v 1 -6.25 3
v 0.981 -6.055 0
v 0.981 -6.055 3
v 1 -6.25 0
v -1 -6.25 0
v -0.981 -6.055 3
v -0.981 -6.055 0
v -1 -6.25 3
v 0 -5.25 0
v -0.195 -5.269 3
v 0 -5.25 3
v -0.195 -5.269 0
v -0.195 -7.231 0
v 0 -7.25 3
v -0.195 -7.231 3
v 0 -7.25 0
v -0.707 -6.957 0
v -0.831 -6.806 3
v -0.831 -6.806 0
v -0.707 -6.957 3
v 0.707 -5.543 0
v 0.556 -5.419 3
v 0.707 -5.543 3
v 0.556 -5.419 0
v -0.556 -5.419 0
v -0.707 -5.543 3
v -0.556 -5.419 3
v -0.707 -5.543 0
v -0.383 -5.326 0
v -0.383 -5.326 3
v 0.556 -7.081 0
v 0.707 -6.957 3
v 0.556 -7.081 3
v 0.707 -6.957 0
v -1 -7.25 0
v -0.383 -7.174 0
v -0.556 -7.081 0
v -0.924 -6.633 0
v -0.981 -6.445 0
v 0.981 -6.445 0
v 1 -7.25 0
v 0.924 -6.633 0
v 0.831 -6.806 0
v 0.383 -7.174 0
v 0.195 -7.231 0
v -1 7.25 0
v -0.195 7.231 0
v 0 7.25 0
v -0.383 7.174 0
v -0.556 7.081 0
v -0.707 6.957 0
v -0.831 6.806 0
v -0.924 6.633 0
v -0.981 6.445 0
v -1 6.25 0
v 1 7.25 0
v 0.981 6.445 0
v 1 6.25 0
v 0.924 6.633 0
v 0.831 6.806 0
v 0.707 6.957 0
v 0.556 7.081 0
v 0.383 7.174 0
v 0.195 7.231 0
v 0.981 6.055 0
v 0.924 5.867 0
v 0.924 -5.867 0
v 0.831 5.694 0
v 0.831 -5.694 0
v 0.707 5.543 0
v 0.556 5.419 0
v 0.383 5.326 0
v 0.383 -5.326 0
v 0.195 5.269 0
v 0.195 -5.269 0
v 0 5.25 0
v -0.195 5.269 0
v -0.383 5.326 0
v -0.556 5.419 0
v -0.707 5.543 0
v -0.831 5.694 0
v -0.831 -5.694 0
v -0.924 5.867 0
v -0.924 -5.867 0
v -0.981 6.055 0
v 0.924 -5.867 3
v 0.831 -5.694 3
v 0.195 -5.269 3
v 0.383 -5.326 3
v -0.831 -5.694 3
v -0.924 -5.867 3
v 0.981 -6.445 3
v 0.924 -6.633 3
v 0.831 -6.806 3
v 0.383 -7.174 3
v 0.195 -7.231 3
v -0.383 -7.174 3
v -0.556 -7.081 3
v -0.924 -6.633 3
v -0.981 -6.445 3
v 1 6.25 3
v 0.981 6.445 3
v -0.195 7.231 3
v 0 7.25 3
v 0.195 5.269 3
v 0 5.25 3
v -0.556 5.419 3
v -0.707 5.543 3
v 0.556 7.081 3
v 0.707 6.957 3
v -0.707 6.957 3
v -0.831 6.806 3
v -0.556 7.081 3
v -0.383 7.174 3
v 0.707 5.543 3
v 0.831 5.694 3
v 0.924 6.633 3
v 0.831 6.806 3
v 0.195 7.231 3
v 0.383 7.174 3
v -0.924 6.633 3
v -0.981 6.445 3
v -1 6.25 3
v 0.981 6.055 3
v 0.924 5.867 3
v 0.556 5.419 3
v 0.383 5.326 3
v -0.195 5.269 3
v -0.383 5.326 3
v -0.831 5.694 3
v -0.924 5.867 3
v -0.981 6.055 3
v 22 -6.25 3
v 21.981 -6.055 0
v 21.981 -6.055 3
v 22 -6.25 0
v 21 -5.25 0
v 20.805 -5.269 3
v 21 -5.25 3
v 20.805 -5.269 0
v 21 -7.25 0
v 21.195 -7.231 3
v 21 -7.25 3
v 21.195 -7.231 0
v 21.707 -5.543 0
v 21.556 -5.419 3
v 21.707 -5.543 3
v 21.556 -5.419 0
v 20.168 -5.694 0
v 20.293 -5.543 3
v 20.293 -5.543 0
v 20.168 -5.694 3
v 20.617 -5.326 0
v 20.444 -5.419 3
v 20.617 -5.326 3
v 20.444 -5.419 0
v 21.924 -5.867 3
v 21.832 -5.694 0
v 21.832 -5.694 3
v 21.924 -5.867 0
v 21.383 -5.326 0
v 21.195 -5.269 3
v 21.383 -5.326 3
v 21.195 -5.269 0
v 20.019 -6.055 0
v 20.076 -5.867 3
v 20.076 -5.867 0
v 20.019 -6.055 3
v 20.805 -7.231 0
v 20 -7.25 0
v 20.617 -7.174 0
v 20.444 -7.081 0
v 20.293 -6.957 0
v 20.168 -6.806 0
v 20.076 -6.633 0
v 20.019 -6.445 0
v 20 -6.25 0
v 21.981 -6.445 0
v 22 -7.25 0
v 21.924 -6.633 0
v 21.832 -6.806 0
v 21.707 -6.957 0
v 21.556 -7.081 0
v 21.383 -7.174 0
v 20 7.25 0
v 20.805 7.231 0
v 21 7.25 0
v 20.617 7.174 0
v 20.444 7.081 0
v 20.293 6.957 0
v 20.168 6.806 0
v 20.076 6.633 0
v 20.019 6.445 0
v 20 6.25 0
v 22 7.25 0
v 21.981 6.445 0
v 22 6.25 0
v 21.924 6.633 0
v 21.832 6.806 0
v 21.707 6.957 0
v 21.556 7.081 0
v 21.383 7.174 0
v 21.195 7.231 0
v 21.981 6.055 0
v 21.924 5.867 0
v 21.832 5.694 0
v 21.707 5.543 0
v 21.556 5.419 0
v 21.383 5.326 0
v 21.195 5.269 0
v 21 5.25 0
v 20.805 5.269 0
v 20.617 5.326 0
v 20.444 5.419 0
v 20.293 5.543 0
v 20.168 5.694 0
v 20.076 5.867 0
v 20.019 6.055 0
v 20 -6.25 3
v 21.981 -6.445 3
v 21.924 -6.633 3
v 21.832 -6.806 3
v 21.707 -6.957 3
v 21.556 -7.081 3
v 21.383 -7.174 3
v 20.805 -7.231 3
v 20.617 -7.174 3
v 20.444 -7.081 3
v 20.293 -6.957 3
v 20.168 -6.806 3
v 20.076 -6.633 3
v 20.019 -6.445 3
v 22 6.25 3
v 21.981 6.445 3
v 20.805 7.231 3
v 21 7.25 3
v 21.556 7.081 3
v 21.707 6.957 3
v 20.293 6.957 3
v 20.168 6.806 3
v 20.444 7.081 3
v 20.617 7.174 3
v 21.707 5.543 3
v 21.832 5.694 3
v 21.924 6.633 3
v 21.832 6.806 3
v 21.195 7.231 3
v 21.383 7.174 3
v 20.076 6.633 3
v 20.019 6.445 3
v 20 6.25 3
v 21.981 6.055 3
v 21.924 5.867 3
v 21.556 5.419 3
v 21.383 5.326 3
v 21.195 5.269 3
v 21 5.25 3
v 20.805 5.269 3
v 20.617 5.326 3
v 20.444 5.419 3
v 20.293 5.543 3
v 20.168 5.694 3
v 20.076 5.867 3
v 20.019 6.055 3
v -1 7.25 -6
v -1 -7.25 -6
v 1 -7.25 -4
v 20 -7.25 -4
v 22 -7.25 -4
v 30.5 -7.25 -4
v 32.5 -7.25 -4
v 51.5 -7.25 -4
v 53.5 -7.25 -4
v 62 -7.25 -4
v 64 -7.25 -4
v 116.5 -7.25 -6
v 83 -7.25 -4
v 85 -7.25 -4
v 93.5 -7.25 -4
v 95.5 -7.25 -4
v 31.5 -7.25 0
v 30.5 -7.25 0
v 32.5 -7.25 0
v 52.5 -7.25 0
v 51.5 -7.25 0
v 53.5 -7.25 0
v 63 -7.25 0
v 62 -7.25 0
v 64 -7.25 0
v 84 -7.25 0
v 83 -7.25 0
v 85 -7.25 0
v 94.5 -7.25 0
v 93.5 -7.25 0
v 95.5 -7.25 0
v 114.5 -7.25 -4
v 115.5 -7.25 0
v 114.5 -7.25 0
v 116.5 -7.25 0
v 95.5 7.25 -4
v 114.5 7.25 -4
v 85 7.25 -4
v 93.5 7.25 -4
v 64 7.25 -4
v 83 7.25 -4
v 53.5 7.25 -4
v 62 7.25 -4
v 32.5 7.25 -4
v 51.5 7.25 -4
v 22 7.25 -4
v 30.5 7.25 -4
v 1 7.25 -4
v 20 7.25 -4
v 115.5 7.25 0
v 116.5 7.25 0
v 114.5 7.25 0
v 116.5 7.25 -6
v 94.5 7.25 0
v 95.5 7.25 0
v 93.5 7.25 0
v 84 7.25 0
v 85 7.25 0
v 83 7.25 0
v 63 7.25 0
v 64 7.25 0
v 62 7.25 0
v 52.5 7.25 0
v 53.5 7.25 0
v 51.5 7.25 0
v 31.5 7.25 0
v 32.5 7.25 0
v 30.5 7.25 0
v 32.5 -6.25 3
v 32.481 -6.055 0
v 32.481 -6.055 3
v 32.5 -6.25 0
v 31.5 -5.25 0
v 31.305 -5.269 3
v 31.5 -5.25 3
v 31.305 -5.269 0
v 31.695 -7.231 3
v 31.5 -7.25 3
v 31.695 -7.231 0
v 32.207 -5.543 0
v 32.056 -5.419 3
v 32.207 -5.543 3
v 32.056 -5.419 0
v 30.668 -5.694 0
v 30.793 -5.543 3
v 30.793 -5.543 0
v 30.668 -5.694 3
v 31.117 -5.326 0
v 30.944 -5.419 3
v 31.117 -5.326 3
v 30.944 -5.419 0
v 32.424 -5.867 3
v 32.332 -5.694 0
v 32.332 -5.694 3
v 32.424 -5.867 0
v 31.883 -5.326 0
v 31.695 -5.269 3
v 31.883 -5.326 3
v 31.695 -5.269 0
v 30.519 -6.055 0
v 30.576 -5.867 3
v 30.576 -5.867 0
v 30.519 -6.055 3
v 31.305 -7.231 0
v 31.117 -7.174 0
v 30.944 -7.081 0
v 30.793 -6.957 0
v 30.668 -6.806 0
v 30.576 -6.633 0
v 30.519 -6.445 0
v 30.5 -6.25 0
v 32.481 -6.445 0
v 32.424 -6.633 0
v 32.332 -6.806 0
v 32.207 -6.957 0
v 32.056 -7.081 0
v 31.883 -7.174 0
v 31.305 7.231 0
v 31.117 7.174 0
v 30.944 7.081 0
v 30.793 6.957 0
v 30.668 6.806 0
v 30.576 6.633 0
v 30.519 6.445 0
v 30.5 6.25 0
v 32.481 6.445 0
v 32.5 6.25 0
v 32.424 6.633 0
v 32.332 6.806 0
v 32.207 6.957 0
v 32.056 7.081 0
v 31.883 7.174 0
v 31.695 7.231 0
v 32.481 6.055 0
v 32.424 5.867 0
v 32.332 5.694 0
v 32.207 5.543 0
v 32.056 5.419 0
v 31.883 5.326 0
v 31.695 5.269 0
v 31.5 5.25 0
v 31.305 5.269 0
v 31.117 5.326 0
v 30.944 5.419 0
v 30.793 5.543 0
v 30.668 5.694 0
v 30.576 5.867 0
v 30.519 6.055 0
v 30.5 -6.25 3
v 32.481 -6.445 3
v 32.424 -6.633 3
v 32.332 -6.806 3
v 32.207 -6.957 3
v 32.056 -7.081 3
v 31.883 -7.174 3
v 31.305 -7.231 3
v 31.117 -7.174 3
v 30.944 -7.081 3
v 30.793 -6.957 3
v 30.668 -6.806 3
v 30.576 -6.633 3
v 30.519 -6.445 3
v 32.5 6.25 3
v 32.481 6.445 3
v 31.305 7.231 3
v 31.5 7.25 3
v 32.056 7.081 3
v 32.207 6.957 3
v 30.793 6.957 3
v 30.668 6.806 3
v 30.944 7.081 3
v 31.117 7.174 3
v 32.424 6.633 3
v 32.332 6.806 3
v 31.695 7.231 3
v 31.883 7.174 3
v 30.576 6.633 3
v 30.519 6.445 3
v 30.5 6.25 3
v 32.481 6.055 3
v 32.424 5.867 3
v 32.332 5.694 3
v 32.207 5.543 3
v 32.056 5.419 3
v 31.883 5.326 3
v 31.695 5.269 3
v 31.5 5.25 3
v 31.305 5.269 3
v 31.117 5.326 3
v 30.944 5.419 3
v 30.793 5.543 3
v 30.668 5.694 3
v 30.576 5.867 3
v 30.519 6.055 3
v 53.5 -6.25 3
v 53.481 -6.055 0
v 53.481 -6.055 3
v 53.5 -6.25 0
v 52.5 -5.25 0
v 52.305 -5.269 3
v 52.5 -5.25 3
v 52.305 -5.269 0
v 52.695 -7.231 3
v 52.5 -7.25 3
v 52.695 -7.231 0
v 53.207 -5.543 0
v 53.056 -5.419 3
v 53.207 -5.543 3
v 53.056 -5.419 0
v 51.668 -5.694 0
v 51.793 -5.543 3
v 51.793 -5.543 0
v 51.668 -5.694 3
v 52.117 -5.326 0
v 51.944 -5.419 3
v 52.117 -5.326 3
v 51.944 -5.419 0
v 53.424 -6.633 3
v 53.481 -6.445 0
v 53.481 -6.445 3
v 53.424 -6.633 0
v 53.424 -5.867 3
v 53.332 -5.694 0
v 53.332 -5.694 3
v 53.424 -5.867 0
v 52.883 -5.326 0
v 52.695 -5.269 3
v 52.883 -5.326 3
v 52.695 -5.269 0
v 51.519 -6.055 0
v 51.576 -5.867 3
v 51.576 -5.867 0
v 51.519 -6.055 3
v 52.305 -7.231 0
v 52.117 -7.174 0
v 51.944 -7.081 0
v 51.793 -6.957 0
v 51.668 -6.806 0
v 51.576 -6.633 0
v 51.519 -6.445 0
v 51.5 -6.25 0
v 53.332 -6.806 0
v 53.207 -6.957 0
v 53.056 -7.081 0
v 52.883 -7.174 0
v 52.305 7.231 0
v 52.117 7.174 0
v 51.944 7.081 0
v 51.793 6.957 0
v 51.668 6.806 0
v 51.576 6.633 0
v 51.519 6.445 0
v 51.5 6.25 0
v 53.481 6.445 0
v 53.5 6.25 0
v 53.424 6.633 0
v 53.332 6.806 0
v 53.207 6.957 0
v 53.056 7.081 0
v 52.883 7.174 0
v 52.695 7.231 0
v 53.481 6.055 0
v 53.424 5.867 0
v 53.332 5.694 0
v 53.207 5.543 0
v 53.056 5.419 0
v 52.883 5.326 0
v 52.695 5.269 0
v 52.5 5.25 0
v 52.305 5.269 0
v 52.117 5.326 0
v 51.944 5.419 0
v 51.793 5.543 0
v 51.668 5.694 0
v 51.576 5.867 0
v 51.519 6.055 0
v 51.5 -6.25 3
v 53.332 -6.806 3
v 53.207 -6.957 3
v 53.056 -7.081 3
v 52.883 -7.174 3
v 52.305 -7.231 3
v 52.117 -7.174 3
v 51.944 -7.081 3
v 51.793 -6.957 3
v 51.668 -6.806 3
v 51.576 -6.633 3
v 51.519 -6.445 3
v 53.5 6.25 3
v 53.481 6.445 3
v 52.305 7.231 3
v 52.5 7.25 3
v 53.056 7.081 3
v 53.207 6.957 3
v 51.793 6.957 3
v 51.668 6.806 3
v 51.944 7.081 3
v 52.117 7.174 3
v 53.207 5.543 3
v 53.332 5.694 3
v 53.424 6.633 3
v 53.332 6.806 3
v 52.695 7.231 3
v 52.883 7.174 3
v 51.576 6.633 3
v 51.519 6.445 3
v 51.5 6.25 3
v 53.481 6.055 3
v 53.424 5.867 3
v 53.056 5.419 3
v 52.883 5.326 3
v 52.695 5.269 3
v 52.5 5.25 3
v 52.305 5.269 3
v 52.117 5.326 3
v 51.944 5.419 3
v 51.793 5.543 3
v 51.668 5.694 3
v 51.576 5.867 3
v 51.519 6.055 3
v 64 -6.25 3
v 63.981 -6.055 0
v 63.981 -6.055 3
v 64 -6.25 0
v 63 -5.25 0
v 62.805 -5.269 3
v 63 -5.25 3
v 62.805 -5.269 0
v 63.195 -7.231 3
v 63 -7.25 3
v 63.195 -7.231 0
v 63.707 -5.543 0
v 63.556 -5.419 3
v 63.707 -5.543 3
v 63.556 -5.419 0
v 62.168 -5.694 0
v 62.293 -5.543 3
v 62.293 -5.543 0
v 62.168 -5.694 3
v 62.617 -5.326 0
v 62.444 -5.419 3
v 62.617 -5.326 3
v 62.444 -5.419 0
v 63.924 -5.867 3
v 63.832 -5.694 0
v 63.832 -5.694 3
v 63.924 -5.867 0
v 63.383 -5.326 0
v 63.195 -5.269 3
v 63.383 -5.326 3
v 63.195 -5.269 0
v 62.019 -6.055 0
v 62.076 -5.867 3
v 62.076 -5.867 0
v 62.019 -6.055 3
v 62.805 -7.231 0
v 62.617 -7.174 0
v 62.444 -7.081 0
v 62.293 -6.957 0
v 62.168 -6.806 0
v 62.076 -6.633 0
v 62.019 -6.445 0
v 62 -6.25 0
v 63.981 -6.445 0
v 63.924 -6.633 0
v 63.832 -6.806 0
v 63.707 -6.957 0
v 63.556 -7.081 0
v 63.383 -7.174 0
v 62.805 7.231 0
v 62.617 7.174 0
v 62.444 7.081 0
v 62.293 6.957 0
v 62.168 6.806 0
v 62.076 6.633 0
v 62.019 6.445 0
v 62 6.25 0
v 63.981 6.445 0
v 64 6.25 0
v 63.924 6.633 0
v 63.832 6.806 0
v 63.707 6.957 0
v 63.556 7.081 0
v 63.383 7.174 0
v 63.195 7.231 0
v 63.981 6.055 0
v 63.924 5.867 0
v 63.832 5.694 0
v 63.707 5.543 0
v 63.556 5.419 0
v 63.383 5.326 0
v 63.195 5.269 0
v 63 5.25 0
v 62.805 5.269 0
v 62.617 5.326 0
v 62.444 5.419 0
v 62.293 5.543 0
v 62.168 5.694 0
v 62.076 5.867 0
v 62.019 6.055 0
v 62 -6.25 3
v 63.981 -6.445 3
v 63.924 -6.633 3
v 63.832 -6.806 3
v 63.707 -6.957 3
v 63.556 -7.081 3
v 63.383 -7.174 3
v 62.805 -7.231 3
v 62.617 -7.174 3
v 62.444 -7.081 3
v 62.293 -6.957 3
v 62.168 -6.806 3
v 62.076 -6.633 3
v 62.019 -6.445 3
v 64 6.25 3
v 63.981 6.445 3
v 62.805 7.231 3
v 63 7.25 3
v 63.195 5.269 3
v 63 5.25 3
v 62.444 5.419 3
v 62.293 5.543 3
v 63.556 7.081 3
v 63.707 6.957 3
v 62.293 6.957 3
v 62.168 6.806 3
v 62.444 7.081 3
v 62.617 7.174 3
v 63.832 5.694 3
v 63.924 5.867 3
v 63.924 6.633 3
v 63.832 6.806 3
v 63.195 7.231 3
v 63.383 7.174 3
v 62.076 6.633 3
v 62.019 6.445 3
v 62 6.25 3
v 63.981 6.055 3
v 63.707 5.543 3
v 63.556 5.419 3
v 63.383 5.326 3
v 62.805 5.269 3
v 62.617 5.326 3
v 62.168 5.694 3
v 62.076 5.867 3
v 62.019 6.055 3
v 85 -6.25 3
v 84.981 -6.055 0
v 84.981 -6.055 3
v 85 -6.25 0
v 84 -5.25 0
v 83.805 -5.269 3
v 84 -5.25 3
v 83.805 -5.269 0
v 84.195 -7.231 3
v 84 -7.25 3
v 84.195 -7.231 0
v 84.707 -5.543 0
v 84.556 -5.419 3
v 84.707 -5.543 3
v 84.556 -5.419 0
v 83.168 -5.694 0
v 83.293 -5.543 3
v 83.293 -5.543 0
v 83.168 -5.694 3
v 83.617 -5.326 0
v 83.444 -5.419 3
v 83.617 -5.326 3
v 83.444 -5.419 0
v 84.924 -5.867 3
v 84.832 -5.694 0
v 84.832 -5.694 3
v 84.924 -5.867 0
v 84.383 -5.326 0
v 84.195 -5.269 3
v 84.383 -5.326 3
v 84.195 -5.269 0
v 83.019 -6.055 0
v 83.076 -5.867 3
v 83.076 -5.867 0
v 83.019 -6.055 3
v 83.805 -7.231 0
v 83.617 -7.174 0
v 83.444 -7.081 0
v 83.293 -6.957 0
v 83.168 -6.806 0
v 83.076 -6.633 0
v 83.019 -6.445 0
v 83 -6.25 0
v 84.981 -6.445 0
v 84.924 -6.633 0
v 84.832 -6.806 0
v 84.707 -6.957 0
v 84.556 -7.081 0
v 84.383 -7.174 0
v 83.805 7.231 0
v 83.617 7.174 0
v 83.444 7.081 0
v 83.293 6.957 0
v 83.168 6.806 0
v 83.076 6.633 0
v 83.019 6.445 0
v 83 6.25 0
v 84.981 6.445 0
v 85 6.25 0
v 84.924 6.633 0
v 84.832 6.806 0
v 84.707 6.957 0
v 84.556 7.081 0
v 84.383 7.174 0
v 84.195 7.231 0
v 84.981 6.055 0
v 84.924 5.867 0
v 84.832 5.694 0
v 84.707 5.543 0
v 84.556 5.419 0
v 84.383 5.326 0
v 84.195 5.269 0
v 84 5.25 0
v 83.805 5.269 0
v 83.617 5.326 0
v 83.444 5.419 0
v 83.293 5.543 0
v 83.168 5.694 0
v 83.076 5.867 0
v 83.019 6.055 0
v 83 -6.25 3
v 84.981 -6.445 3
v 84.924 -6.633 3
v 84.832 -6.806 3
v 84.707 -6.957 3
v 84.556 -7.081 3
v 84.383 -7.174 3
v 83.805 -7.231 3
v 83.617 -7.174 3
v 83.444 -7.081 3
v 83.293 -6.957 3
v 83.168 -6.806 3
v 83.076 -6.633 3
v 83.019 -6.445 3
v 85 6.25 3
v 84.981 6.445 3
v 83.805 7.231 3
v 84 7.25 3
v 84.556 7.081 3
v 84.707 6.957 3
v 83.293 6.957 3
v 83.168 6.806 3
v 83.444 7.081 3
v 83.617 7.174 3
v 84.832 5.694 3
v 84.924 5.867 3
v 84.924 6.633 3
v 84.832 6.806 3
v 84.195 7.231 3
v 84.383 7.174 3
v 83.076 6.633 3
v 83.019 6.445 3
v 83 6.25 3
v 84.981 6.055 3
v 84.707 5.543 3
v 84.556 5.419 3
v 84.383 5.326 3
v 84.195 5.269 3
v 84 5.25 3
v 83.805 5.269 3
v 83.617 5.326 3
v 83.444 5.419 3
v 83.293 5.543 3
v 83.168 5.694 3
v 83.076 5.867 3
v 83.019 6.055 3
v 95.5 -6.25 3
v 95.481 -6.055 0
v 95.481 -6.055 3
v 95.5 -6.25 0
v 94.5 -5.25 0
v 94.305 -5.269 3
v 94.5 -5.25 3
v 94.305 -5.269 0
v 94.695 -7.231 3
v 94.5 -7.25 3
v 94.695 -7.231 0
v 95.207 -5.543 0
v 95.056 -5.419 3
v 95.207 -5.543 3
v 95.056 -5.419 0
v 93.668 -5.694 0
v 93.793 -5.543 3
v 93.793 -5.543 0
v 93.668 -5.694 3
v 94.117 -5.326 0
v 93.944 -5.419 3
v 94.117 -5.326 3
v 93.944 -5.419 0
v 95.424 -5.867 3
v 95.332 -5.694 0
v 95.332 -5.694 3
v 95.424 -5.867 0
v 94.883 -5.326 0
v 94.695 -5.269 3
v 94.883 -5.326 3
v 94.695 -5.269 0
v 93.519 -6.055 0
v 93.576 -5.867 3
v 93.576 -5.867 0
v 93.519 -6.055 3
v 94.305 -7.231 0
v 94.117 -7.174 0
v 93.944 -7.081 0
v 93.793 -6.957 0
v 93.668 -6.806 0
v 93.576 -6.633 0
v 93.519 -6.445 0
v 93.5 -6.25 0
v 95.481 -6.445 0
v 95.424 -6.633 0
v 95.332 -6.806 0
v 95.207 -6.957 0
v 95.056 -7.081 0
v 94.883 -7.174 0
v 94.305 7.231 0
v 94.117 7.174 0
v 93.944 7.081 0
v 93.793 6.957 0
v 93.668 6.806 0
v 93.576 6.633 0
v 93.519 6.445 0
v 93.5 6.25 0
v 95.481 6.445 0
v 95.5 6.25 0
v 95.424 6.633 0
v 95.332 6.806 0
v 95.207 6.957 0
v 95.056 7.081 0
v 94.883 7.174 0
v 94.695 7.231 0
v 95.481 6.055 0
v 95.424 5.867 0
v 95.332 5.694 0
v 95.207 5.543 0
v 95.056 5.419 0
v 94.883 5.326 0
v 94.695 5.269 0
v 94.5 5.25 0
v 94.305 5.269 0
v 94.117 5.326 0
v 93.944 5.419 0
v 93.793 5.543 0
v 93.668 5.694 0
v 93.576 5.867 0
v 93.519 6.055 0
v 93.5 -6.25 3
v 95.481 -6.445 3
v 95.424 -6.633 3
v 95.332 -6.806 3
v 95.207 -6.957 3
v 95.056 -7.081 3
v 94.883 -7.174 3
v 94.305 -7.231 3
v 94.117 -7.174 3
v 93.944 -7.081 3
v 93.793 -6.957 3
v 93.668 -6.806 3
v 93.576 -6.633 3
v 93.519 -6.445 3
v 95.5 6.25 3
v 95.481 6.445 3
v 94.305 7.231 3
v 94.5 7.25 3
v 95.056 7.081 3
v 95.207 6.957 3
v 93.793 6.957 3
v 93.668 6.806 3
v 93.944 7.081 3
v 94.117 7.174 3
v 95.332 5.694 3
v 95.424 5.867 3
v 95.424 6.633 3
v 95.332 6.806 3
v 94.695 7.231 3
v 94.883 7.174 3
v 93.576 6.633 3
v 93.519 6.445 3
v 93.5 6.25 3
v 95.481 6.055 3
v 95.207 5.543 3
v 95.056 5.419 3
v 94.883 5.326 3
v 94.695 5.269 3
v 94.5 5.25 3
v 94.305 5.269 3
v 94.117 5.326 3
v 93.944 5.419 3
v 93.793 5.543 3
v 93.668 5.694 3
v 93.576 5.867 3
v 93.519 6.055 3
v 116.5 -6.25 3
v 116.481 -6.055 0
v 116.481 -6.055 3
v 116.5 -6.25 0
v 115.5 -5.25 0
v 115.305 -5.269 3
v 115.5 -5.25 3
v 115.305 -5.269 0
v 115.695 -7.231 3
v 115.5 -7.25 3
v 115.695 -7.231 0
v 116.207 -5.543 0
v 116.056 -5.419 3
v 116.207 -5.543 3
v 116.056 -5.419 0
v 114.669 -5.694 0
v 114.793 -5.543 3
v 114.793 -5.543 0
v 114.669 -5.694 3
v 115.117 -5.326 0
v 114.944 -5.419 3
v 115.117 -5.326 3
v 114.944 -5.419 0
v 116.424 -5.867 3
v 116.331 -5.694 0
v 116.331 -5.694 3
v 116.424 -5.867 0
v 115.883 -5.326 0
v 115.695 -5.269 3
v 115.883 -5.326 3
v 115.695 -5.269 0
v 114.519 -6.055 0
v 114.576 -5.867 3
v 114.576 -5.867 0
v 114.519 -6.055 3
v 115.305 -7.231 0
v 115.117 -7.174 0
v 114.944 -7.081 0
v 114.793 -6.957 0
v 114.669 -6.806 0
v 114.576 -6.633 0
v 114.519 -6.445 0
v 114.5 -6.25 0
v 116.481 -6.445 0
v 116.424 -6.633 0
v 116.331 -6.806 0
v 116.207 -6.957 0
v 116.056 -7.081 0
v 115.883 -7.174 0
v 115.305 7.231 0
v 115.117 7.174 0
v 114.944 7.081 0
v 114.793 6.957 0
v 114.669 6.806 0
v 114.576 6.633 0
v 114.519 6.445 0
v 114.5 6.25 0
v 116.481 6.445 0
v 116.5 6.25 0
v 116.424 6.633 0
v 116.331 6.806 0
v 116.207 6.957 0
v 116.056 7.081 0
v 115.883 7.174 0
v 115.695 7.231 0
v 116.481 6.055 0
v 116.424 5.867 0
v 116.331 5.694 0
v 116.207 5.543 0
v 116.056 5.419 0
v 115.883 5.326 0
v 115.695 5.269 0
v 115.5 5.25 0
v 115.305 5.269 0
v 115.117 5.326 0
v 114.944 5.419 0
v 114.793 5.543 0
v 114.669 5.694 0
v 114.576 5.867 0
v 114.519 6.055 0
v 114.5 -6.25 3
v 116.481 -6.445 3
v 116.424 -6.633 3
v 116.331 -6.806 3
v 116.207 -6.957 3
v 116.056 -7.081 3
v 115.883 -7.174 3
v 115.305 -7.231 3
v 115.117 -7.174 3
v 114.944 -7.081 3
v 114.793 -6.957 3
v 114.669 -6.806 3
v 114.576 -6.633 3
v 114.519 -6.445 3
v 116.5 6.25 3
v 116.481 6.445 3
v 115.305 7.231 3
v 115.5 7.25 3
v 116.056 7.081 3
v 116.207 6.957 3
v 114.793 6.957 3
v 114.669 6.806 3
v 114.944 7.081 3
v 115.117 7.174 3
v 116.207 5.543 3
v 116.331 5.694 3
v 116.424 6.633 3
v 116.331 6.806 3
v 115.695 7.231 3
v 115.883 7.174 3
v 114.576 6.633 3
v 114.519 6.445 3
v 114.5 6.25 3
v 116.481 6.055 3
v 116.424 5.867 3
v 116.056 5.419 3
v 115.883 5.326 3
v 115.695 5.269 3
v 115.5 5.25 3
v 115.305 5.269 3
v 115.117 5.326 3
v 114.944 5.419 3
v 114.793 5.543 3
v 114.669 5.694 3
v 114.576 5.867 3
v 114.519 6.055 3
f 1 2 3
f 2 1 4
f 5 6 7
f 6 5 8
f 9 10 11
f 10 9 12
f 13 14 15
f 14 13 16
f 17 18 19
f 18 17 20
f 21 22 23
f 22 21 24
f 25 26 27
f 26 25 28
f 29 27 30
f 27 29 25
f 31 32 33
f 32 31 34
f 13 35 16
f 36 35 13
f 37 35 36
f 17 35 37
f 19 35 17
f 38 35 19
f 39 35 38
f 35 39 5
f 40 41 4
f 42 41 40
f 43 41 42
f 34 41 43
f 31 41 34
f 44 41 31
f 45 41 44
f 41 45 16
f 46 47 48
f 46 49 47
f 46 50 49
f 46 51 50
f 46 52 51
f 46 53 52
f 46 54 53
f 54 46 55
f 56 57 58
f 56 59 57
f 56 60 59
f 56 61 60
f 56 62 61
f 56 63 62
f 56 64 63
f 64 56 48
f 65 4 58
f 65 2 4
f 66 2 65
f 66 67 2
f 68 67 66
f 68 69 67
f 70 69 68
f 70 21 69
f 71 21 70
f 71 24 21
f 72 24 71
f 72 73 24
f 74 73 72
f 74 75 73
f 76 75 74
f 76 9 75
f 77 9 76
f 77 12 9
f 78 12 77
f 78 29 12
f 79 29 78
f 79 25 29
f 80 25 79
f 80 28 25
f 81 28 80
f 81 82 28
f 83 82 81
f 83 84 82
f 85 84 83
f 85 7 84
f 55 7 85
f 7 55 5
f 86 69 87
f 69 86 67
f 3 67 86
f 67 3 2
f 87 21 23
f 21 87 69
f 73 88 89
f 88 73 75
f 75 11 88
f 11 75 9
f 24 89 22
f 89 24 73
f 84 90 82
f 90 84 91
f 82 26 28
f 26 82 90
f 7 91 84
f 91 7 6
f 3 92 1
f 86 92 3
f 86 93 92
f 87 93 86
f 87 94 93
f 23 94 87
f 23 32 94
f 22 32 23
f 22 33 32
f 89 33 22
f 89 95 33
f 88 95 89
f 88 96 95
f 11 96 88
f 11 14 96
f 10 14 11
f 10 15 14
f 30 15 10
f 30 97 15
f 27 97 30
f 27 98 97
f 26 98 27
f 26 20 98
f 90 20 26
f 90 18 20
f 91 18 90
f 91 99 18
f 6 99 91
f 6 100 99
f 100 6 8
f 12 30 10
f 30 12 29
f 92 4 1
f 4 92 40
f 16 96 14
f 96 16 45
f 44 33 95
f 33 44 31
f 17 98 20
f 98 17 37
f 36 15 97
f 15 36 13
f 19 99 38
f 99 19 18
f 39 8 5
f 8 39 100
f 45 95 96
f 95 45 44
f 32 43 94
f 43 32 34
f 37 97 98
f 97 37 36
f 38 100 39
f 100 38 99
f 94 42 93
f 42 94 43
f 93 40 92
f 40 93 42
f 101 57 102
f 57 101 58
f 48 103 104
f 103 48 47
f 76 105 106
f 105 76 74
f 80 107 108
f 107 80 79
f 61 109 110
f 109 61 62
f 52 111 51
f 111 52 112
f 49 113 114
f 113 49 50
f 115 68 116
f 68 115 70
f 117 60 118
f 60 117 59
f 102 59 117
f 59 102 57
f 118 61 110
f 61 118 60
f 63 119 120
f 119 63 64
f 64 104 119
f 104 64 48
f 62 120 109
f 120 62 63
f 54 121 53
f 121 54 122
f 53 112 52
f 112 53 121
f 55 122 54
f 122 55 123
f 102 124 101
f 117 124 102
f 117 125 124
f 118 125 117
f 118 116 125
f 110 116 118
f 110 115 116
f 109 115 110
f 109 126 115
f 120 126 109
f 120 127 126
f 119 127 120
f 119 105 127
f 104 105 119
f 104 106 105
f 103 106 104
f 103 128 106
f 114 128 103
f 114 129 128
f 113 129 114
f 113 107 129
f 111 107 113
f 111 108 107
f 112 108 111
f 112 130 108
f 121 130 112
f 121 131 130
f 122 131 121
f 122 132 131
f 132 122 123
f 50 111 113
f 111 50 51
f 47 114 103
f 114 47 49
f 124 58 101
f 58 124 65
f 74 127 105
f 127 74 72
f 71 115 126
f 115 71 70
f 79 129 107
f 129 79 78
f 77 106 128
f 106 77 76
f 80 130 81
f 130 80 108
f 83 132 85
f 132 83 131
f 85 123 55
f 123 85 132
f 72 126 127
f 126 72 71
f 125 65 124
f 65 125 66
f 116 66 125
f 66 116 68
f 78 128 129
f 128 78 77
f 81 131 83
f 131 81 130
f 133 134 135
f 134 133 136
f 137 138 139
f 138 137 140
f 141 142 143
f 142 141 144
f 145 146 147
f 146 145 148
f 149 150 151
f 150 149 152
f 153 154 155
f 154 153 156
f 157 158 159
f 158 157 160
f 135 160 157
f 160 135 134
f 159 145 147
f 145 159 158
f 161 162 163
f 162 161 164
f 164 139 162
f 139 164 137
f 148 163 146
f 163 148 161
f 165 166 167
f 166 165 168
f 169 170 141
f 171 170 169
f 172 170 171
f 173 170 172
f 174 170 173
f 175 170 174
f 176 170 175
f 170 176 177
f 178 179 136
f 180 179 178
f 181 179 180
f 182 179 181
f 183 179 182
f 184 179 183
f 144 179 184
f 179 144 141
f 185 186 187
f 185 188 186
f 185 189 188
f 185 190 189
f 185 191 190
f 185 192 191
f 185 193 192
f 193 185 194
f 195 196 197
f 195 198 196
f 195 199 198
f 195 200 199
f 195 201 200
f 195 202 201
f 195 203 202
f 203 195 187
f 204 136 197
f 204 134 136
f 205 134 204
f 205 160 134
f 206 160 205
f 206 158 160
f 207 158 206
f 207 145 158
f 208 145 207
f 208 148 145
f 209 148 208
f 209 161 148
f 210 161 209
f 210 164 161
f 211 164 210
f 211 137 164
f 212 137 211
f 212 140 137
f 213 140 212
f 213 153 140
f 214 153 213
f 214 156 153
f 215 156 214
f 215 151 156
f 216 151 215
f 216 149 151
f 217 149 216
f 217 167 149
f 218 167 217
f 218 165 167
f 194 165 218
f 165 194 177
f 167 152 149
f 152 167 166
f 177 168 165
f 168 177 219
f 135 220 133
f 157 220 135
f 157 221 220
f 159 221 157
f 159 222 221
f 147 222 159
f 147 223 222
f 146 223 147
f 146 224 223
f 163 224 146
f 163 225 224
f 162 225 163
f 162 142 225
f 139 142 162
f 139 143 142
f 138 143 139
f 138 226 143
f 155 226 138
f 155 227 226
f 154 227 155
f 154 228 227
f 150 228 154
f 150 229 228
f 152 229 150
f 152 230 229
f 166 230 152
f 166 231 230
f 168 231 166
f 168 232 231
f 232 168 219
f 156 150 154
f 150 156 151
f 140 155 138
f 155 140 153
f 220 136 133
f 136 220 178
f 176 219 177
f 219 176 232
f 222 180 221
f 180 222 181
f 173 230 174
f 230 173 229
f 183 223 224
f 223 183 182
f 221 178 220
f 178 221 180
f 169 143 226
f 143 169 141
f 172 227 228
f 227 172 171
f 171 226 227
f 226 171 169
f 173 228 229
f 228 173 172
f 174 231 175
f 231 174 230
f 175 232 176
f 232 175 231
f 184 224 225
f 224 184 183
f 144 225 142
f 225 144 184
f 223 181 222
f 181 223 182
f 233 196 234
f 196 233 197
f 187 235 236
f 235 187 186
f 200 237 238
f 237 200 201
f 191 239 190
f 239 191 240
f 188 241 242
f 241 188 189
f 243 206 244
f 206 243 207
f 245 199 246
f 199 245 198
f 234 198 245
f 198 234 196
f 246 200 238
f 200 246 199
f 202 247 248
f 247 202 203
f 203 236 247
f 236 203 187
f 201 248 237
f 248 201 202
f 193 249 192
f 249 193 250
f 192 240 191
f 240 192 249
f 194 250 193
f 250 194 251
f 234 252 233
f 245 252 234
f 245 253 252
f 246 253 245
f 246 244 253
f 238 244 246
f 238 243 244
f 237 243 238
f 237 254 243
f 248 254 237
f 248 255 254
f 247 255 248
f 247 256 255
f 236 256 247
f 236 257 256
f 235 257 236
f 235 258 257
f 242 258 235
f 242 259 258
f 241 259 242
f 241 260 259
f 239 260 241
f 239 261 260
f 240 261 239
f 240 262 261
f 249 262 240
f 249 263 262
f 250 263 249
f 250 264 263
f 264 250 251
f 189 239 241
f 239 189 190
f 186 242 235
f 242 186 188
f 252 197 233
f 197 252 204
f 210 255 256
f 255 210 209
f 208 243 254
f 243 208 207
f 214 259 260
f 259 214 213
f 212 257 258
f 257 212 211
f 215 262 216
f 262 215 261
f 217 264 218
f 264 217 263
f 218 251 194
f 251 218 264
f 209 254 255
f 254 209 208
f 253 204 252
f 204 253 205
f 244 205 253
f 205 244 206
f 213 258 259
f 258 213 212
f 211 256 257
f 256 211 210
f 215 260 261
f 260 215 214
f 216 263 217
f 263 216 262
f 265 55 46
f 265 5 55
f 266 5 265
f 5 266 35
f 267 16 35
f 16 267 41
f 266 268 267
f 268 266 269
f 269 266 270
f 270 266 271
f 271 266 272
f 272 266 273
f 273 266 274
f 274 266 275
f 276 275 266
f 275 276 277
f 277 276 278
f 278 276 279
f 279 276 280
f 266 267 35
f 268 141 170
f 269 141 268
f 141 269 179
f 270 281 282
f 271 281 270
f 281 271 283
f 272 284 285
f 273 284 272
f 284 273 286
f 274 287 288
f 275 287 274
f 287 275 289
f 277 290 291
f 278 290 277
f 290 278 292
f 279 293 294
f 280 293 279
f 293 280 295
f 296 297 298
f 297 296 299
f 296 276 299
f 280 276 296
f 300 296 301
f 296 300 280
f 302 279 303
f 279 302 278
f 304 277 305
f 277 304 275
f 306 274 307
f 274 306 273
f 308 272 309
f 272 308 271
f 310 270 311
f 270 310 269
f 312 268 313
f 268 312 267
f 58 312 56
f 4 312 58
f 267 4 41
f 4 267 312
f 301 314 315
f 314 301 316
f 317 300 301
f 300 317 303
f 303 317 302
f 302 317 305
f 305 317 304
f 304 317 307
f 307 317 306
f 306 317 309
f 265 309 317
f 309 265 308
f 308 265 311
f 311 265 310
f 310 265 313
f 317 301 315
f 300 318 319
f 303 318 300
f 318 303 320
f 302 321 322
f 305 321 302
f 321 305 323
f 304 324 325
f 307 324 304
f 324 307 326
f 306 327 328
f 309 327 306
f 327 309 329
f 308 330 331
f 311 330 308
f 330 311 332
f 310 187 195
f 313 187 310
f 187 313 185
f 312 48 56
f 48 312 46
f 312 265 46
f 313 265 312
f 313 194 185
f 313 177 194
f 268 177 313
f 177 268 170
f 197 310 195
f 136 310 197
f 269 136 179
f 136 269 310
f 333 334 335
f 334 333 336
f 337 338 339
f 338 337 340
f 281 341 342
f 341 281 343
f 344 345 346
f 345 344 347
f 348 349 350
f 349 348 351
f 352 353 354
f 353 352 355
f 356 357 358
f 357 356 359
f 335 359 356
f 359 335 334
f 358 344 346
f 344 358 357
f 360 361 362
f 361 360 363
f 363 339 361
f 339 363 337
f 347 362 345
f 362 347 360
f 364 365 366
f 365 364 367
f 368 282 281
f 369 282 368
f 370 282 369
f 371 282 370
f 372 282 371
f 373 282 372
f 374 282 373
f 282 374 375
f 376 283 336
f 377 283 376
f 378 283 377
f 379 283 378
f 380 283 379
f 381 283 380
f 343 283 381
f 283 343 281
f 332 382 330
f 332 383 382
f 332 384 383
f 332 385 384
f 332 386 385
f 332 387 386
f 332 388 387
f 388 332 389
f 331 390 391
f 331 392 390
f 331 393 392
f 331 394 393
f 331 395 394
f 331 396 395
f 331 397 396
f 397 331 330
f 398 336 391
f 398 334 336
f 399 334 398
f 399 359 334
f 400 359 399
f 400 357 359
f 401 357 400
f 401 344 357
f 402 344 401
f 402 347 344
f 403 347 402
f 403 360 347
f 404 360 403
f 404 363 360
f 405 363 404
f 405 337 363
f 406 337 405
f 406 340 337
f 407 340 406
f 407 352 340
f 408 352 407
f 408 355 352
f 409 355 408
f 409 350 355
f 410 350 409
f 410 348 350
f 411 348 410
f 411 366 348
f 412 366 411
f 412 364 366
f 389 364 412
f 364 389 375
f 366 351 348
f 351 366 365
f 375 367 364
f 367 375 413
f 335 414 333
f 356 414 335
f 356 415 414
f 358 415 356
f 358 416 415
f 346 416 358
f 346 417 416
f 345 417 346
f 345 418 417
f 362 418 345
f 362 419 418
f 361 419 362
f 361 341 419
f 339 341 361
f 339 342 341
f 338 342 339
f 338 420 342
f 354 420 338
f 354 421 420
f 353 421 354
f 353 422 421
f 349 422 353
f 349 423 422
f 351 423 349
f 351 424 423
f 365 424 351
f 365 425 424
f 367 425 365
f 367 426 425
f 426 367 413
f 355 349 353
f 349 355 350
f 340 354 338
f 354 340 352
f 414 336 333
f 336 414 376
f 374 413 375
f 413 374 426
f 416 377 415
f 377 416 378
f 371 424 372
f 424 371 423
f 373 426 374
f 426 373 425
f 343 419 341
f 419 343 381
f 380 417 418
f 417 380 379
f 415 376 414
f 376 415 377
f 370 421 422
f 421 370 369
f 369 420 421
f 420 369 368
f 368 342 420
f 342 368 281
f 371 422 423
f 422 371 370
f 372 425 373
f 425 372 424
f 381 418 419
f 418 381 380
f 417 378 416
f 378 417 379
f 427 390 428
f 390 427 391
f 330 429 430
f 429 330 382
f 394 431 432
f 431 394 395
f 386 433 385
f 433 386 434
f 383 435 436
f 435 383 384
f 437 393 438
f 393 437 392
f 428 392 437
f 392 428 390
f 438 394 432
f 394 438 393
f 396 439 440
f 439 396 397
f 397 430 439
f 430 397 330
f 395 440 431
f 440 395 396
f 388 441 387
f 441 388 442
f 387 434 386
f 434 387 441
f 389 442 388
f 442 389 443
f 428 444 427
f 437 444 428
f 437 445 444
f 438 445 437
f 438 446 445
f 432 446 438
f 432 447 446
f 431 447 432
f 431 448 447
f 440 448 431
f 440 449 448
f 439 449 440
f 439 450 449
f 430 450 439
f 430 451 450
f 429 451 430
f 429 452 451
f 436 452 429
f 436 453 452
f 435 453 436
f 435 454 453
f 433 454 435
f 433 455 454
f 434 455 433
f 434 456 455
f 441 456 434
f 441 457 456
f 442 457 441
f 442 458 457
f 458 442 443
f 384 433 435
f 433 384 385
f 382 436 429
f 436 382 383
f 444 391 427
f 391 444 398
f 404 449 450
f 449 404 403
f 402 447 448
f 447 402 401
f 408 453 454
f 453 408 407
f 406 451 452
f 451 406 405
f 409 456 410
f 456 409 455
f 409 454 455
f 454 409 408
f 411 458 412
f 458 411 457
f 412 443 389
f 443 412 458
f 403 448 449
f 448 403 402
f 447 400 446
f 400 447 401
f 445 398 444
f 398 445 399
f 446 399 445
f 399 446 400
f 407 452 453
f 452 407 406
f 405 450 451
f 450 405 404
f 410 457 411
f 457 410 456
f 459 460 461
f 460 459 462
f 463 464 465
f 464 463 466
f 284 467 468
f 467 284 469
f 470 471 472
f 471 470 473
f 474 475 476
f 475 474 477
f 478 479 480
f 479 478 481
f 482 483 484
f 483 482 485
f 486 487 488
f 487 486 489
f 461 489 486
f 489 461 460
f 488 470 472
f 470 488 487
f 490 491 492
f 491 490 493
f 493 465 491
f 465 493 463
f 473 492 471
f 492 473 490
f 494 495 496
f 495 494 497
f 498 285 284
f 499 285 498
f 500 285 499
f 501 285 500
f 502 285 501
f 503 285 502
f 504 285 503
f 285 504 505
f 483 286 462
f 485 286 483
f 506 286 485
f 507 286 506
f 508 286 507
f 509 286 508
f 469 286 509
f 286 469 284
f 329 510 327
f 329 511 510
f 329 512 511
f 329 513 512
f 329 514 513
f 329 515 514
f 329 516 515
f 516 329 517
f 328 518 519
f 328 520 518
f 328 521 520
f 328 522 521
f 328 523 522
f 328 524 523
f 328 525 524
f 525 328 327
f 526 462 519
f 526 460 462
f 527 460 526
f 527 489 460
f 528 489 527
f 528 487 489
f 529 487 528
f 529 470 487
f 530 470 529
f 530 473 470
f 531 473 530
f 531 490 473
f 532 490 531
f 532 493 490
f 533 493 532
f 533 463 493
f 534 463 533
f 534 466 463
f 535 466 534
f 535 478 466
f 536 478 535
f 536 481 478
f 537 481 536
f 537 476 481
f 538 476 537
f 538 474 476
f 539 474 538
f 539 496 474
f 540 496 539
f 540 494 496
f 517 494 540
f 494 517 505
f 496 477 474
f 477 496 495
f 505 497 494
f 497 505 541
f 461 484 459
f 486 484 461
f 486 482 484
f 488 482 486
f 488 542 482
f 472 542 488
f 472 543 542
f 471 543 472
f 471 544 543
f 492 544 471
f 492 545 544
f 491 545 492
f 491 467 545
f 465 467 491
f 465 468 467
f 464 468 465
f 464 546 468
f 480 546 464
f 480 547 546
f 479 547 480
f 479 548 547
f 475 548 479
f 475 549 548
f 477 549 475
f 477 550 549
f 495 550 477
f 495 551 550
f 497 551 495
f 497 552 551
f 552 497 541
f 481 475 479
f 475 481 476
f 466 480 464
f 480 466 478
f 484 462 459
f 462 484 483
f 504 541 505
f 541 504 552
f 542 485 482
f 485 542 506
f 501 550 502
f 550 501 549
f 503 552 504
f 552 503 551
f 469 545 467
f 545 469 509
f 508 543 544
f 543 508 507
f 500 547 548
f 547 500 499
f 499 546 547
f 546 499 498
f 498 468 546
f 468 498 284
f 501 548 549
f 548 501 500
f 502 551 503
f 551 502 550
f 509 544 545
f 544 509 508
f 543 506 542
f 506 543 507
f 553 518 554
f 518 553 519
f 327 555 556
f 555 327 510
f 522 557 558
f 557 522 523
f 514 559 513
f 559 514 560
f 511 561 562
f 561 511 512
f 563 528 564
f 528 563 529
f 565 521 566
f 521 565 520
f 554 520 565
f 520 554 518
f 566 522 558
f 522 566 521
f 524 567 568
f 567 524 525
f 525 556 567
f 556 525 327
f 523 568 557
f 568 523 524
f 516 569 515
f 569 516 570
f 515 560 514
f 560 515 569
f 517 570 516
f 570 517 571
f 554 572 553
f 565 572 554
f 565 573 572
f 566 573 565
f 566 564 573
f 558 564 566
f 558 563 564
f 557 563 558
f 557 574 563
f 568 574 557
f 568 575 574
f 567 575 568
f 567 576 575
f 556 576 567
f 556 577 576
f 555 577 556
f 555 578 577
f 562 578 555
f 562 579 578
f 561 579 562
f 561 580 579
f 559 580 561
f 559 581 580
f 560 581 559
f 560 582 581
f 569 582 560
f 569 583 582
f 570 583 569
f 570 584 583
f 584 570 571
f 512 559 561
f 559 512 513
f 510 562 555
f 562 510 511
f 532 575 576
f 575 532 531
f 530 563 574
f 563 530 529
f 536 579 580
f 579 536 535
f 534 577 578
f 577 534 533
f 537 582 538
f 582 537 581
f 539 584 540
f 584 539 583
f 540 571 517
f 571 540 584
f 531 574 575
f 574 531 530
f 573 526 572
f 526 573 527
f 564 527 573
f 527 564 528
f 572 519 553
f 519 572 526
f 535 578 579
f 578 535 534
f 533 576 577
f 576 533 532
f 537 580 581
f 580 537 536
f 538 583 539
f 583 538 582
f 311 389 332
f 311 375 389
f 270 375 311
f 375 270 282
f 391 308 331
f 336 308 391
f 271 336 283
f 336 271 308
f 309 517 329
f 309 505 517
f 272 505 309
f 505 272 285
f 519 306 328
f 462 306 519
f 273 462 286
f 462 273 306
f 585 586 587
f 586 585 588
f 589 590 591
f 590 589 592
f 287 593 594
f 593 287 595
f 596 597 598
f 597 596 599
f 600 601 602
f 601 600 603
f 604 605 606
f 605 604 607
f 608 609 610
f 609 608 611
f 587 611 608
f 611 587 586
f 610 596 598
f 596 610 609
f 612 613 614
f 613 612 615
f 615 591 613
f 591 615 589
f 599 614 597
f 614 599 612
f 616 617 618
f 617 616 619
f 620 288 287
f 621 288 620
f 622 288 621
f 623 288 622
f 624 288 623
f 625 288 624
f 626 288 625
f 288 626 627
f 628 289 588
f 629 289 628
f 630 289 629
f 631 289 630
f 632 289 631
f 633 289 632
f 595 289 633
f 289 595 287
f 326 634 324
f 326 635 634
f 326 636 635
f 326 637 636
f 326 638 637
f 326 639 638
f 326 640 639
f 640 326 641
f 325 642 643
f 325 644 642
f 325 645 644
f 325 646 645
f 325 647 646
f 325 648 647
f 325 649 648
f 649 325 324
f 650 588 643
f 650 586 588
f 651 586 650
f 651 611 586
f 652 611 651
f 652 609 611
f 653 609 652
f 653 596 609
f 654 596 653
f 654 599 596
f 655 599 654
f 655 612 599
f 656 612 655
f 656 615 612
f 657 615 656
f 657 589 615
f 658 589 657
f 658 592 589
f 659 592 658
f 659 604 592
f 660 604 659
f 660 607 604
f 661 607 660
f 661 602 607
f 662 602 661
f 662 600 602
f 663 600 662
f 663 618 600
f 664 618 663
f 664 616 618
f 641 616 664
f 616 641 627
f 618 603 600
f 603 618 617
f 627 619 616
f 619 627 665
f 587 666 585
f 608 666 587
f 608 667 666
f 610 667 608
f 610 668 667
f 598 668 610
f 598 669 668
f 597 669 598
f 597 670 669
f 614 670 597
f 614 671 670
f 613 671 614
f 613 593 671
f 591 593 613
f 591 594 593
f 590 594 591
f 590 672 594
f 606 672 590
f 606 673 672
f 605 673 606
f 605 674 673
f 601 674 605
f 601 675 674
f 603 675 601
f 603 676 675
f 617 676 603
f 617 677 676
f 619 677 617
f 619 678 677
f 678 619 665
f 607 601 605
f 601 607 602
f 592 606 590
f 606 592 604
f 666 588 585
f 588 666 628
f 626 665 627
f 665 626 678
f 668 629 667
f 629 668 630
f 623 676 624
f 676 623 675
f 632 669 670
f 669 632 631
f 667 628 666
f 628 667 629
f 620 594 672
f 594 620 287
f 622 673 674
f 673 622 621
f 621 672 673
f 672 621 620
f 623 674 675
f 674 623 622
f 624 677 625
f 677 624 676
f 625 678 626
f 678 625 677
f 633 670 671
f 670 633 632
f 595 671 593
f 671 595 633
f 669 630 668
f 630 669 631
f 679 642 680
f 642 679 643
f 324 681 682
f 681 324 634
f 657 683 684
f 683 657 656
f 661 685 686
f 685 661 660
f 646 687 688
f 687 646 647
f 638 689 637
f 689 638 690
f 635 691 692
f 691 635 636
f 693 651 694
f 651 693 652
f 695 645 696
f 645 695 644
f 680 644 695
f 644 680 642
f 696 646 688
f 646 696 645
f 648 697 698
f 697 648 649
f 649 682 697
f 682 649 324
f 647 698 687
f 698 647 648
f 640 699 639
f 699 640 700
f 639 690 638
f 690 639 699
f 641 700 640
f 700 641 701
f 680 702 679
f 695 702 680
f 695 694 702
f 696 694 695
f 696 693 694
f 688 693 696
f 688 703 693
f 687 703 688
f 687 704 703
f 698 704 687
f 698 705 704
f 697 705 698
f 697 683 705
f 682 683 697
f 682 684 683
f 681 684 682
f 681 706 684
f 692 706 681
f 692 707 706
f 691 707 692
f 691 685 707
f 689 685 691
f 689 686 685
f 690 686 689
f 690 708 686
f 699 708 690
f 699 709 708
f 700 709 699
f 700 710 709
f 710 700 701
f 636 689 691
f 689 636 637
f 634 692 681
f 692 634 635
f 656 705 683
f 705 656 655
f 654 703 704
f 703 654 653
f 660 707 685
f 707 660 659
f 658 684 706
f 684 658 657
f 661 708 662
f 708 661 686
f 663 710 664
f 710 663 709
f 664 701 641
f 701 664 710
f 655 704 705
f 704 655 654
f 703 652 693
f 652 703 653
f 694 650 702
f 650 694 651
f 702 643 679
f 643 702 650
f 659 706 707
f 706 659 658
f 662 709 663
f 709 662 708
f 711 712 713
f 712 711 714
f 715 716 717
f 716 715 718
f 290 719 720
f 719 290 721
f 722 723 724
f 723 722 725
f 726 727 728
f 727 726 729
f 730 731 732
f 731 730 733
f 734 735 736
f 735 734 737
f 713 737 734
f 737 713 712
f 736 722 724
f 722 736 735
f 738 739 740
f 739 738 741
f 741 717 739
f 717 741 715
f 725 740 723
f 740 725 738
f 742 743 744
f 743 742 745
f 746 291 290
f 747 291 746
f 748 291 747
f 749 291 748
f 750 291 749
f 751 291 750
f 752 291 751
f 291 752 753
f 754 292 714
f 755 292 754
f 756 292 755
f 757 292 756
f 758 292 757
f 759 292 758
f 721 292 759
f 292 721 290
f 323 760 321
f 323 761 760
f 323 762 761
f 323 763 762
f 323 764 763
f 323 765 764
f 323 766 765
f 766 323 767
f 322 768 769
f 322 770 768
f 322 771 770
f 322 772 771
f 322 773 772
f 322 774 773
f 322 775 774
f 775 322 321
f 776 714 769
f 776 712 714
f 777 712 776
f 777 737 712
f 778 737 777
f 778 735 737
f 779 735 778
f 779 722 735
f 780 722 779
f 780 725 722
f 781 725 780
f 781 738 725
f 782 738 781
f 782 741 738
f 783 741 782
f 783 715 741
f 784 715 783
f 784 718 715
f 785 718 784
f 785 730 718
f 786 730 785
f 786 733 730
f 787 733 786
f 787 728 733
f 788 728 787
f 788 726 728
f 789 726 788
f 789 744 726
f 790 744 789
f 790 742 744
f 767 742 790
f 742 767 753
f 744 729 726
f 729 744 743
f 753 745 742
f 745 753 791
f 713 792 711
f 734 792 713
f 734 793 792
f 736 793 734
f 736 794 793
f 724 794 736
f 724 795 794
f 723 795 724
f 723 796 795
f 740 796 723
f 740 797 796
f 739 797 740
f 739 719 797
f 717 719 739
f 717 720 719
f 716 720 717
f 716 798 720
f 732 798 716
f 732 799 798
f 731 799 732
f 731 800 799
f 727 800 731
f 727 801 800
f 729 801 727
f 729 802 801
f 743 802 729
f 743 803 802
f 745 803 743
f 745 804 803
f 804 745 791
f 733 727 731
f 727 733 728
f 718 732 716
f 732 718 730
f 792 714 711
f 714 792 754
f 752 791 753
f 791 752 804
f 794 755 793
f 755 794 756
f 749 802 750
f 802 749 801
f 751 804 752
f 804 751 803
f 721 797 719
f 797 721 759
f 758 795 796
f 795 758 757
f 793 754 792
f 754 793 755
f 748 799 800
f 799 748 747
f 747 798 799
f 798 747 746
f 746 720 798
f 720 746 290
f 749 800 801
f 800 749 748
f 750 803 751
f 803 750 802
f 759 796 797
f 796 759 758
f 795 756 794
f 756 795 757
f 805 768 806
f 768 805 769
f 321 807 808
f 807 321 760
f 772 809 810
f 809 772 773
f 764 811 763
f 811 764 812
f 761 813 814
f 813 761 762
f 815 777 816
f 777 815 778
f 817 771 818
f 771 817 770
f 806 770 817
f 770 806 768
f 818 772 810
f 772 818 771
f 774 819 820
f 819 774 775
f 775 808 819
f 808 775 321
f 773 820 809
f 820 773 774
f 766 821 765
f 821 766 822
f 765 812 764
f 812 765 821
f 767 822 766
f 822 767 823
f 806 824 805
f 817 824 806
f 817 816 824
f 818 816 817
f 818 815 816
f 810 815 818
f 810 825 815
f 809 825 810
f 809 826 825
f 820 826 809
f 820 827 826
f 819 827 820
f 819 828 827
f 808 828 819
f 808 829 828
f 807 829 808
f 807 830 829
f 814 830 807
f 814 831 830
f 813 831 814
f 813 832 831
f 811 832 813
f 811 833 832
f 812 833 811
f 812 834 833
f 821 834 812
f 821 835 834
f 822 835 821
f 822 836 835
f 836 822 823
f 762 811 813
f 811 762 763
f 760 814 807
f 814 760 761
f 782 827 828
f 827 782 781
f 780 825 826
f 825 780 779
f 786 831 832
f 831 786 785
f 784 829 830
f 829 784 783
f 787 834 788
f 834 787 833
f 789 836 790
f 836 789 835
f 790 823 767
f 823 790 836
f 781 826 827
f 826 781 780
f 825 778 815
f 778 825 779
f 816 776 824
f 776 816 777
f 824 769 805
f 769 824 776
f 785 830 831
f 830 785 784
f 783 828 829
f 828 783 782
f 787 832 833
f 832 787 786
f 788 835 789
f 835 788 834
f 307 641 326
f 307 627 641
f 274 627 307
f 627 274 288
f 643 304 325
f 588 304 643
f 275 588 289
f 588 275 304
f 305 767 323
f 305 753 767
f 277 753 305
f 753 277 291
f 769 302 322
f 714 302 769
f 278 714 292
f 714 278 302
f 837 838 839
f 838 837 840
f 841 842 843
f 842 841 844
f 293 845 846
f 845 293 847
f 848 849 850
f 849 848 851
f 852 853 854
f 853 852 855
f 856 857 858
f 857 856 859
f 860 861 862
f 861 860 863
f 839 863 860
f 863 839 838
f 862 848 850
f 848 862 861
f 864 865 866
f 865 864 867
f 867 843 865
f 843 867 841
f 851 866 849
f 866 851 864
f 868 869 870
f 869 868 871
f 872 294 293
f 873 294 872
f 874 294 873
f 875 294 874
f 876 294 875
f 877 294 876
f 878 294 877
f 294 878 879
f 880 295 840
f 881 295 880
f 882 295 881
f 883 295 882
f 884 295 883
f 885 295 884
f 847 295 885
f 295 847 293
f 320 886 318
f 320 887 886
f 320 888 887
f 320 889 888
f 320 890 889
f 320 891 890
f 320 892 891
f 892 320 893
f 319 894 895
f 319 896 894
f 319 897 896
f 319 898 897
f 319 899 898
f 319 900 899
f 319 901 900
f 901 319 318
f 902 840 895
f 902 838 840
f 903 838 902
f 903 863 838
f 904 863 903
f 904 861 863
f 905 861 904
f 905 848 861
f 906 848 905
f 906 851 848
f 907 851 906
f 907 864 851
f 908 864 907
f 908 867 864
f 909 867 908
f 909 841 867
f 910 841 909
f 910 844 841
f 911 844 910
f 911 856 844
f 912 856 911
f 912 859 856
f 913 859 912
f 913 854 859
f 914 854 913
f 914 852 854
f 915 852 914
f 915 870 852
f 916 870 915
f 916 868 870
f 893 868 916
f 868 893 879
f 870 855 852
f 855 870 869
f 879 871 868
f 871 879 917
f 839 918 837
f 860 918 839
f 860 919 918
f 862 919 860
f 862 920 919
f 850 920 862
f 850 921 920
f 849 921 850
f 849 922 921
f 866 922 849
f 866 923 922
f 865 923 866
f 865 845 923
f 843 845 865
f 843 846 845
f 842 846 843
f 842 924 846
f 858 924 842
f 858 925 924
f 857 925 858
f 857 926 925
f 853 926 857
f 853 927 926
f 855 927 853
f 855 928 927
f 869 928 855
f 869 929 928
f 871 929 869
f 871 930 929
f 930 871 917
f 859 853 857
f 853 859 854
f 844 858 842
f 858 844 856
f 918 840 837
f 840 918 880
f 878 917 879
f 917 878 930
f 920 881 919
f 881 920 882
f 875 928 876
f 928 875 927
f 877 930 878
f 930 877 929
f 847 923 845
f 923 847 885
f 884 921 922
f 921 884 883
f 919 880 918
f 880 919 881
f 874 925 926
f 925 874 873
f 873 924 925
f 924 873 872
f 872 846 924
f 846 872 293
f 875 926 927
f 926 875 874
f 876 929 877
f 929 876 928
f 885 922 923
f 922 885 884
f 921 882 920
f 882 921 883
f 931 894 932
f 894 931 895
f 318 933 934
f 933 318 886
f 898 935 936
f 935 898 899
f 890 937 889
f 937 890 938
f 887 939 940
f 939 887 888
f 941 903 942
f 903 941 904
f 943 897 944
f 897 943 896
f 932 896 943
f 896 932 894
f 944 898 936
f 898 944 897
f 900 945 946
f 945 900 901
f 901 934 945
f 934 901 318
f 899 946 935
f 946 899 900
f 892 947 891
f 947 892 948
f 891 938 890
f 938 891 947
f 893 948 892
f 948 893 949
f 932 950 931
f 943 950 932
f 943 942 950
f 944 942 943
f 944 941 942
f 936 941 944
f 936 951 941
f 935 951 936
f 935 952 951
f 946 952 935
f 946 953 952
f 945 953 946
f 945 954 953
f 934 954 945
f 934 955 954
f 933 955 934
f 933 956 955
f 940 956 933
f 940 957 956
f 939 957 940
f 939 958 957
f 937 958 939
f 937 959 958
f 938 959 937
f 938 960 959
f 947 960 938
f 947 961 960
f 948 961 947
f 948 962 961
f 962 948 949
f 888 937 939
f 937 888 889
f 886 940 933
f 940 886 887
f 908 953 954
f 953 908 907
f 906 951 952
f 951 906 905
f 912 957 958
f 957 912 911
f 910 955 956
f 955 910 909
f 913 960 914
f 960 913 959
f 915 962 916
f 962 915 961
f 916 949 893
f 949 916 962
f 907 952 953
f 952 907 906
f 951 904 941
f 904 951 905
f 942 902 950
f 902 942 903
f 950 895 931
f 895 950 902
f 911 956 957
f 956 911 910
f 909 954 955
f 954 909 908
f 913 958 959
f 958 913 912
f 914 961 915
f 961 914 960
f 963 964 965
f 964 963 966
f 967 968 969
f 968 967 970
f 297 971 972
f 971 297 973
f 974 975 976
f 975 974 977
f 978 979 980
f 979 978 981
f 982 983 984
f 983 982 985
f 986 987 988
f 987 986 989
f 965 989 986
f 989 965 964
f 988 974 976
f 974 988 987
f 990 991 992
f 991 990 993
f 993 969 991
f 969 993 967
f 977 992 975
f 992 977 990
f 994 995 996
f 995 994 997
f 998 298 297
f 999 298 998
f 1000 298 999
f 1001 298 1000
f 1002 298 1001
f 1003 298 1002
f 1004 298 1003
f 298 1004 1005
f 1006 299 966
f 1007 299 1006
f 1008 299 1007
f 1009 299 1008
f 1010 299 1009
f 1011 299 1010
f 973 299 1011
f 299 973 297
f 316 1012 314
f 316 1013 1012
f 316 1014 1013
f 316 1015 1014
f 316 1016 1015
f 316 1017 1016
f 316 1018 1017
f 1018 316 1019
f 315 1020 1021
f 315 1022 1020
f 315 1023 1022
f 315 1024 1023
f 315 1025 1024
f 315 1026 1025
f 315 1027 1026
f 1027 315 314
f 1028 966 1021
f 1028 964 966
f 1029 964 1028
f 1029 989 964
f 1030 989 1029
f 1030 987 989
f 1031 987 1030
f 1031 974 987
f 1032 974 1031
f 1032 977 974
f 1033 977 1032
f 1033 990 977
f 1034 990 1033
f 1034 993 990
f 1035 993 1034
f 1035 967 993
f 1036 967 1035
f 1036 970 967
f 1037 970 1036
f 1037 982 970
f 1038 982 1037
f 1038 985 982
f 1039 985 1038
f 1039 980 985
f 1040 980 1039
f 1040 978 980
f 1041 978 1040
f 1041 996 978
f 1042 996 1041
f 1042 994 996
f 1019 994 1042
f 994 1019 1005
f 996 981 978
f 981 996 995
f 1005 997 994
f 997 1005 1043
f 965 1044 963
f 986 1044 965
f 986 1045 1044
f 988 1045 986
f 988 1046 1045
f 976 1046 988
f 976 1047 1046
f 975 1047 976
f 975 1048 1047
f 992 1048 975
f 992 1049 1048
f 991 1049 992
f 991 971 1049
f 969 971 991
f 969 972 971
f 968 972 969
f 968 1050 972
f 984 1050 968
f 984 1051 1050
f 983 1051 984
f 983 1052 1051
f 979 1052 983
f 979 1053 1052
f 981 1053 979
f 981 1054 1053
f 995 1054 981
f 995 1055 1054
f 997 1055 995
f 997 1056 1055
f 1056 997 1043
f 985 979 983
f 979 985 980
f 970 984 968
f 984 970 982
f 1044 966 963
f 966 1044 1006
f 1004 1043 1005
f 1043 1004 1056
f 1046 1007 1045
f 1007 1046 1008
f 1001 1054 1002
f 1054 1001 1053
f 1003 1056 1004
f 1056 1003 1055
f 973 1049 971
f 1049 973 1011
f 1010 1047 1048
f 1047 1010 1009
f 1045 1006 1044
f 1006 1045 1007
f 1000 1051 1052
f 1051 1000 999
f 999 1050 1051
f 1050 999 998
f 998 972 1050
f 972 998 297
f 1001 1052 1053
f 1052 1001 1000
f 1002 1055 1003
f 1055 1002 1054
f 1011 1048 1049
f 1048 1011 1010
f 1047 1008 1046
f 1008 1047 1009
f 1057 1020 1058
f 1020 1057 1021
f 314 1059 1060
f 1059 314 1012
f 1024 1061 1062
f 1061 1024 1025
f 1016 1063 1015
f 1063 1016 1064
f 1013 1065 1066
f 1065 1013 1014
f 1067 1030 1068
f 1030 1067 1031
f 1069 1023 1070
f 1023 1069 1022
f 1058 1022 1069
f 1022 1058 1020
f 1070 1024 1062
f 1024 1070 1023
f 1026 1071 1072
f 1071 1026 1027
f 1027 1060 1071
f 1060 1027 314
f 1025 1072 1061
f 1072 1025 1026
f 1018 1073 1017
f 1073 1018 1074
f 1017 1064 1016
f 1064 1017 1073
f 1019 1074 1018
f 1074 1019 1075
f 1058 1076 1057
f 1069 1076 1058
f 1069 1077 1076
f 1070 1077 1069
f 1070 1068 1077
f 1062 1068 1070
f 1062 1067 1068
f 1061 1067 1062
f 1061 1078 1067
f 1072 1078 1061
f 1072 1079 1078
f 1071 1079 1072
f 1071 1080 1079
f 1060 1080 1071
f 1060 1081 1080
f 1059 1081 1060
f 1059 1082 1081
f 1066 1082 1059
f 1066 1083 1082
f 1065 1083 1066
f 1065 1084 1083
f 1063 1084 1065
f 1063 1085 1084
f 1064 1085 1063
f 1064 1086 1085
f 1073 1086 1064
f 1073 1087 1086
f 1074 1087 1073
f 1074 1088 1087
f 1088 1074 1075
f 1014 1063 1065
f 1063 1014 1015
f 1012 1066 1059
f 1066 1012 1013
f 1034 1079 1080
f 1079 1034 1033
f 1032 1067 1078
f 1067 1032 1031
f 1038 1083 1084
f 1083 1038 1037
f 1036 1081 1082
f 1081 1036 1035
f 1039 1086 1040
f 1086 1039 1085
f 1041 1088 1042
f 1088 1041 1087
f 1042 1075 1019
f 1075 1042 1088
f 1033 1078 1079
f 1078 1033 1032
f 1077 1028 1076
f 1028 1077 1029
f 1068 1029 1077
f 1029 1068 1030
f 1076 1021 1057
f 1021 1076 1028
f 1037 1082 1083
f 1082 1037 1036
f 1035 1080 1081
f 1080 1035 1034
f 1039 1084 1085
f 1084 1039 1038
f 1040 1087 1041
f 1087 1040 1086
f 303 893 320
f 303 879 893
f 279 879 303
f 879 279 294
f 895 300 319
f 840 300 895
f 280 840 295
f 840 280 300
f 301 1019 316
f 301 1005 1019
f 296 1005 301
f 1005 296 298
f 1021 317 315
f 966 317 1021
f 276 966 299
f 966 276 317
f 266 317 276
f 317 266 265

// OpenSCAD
//
// raspberry pi cameras mount
//
// copyright 2014 Sebastien Roy
// Licence: Public domain
//

/* [General] */

// Reduce the diameter of the pegs (units are 0.01mm, so for 0.1mm enter 10)
tolerance=0; // [0:100]

camera_width = 42;
num_cameras = 4;
margins = 21;
full_rig_width = (camera_width * num_cameras) + (margins * (num_cameras - 1));

// to stop customizer
module nop() { }


module centercube(sz) {
	translate(sz/-2) cube(sz);
}

//
// peg: radius of the peg cylinder. Normally 1mm
//
module base() {
	// base
	hull() {
	translate([0,12.5,-10]/2) centercube([2,2,2]);
	translate([full_rig_width,12.5,-10]/2) centercube([2,2,2]);
    translate([full_rig_width,-12.5,-10]/2) centercube([2,2,2]);
    translate([0,-12.5,-10]/2) centercube([2,2,2]);
	}
	

}

module pegs(camera_index, peg=1.0) {
    // One row of pegs
    
    first_row_x = 0 + ((camera_index-1) * camera_width) + ((camera_index-1) * margins);
    second_row_x = (first_row_x + camera_width);
    
    translate([first_row_x,-12.5,0]/2) cylinder(r=peg,h=3,$fn=32);
    translate([first_row_x,12.5,0]/2) cylinder(r=peg,h=3,$fn=32);
    
    translate([second_row_x,-12.5, 0]/2) cylinder(r=peg,h=3,$fn=32);
    translate([second_row_x,12.5,0]/2) cylinder(r=peg,h=3,$fn=32);
    
    hull() {
	translate([first_row_x,-12.5,-4]/2) centercube([2,2,4]);
	translate([first_row_x,12.5,-4]/2) centercube([2,2,4]);
	}
    
    hull() {
	translate([second_row_x,-12.5,-4]/2) centercube([2,2,4]);
	translate([second_row_x,12.5,-4]/2) centercube([2,2,4]);
	}
}
// call with the radius of the peg
base(1-tolerance/200);
for (a =[1:(num_cameras)])pegs(a, 1-tolerance/200);
